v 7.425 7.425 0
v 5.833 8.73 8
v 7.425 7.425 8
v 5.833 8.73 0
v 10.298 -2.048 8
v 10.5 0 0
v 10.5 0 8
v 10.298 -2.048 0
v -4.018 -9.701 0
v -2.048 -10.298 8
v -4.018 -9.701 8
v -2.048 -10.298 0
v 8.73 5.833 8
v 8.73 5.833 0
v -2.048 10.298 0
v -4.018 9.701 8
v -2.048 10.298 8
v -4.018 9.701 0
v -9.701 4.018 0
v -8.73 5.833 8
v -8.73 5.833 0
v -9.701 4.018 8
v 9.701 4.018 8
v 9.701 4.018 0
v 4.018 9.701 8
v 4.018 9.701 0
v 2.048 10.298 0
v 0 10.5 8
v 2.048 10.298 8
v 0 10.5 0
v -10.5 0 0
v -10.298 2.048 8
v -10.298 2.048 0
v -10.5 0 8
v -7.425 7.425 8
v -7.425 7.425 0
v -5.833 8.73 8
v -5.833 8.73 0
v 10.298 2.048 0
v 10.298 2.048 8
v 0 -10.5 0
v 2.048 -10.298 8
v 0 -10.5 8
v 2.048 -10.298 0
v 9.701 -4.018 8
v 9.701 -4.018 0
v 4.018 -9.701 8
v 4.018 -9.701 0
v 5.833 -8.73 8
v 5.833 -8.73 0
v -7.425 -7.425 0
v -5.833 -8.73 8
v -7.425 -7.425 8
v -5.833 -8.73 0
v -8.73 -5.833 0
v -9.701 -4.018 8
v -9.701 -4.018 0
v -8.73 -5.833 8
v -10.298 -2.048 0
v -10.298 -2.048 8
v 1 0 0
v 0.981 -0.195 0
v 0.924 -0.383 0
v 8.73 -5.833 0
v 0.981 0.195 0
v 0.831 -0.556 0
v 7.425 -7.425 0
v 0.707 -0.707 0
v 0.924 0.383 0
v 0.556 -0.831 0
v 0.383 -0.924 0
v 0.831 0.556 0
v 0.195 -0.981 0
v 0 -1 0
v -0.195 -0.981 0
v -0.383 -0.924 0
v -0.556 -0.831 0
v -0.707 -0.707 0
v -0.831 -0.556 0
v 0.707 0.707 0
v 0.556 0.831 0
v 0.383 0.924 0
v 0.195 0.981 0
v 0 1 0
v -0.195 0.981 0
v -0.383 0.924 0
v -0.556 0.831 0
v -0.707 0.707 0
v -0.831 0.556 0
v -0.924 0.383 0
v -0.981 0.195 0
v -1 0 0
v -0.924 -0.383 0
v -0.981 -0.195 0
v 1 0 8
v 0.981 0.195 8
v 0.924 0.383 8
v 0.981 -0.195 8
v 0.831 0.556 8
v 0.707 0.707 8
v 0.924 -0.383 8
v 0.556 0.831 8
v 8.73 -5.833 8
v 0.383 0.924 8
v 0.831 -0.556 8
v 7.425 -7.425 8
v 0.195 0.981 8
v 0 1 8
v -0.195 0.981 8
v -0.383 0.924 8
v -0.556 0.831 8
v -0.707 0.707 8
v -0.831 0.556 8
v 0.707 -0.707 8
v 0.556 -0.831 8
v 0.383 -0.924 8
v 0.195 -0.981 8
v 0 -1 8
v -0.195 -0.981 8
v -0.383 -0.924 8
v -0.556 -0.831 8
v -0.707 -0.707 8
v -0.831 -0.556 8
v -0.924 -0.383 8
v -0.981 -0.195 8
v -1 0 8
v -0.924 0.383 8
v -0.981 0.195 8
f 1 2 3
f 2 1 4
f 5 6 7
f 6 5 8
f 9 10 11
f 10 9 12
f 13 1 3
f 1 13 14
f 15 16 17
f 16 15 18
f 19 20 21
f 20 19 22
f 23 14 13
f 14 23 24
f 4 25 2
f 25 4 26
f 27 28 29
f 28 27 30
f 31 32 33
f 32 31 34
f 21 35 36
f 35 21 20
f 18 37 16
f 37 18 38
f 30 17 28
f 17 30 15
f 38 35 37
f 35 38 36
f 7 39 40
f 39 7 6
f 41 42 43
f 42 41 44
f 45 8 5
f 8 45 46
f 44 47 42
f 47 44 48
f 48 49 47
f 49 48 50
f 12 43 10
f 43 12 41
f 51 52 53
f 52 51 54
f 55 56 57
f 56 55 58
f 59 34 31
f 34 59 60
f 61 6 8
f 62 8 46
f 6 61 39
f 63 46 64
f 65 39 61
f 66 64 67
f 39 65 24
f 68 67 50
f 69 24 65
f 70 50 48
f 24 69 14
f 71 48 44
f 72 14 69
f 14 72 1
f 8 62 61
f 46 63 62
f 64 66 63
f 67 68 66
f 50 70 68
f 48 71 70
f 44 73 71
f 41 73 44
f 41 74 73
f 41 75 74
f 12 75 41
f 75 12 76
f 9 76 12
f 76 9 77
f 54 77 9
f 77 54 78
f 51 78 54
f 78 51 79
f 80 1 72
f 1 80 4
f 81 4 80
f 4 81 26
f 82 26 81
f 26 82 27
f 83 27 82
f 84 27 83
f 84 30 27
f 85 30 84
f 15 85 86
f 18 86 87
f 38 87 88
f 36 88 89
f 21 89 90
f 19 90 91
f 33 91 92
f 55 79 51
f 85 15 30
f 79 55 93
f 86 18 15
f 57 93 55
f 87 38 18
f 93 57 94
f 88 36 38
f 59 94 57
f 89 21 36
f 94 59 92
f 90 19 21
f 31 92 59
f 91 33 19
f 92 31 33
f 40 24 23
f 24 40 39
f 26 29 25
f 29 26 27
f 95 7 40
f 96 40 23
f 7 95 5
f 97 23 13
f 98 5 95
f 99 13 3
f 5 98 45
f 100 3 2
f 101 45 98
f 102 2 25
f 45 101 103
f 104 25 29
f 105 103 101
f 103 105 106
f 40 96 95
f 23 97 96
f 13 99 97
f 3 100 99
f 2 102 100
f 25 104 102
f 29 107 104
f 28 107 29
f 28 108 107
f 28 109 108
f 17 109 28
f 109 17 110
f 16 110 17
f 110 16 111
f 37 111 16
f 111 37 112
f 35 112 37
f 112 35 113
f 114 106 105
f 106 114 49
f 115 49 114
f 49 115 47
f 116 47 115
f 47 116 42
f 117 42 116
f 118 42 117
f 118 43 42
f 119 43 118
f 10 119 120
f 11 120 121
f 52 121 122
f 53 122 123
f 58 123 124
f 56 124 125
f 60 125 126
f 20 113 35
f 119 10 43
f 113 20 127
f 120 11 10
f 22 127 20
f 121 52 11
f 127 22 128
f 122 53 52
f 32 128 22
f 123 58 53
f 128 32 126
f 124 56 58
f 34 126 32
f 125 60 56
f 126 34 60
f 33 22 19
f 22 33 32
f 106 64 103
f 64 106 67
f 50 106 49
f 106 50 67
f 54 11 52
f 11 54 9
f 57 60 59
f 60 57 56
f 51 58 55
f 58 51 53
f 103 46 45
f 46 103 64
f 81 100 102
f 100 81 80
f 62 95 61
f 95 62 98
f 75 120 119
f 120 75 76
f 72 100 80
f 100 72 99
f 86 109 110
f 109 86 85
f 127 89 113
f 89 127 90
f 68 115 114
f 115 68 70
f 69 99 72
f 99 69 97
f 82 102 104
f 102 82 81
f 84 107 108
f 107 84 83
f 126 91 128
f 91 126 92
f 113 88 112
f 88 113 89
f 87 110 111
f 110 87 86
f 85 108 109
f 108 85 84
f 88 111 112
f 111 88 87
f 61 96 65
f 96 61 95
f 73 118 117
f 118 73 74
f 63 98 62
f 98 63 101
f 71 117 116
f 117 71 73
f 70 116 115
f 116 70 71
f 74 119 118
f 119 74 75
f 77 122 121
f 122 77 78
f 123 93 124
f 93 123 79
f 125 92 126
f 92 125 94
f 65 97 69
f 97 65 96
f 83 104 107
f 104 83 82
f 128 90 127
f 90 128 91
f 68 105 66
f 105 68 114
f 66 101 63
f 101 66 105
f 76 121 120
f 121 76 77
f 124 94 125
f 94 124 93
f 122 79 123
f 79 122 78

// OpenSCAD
/**
 * Martin & Iris Egli
 * 2021-10-03
 * Rad für Lilifee-Kutsche
 */
res = 32;
difference() {
    translate([0, 0, 0])
    cylinder(d = 21, h = 8, $fn = res);
    translate([0, 0, -1])
    cylinder(d = 2, h = 10, $fn = res);
}
